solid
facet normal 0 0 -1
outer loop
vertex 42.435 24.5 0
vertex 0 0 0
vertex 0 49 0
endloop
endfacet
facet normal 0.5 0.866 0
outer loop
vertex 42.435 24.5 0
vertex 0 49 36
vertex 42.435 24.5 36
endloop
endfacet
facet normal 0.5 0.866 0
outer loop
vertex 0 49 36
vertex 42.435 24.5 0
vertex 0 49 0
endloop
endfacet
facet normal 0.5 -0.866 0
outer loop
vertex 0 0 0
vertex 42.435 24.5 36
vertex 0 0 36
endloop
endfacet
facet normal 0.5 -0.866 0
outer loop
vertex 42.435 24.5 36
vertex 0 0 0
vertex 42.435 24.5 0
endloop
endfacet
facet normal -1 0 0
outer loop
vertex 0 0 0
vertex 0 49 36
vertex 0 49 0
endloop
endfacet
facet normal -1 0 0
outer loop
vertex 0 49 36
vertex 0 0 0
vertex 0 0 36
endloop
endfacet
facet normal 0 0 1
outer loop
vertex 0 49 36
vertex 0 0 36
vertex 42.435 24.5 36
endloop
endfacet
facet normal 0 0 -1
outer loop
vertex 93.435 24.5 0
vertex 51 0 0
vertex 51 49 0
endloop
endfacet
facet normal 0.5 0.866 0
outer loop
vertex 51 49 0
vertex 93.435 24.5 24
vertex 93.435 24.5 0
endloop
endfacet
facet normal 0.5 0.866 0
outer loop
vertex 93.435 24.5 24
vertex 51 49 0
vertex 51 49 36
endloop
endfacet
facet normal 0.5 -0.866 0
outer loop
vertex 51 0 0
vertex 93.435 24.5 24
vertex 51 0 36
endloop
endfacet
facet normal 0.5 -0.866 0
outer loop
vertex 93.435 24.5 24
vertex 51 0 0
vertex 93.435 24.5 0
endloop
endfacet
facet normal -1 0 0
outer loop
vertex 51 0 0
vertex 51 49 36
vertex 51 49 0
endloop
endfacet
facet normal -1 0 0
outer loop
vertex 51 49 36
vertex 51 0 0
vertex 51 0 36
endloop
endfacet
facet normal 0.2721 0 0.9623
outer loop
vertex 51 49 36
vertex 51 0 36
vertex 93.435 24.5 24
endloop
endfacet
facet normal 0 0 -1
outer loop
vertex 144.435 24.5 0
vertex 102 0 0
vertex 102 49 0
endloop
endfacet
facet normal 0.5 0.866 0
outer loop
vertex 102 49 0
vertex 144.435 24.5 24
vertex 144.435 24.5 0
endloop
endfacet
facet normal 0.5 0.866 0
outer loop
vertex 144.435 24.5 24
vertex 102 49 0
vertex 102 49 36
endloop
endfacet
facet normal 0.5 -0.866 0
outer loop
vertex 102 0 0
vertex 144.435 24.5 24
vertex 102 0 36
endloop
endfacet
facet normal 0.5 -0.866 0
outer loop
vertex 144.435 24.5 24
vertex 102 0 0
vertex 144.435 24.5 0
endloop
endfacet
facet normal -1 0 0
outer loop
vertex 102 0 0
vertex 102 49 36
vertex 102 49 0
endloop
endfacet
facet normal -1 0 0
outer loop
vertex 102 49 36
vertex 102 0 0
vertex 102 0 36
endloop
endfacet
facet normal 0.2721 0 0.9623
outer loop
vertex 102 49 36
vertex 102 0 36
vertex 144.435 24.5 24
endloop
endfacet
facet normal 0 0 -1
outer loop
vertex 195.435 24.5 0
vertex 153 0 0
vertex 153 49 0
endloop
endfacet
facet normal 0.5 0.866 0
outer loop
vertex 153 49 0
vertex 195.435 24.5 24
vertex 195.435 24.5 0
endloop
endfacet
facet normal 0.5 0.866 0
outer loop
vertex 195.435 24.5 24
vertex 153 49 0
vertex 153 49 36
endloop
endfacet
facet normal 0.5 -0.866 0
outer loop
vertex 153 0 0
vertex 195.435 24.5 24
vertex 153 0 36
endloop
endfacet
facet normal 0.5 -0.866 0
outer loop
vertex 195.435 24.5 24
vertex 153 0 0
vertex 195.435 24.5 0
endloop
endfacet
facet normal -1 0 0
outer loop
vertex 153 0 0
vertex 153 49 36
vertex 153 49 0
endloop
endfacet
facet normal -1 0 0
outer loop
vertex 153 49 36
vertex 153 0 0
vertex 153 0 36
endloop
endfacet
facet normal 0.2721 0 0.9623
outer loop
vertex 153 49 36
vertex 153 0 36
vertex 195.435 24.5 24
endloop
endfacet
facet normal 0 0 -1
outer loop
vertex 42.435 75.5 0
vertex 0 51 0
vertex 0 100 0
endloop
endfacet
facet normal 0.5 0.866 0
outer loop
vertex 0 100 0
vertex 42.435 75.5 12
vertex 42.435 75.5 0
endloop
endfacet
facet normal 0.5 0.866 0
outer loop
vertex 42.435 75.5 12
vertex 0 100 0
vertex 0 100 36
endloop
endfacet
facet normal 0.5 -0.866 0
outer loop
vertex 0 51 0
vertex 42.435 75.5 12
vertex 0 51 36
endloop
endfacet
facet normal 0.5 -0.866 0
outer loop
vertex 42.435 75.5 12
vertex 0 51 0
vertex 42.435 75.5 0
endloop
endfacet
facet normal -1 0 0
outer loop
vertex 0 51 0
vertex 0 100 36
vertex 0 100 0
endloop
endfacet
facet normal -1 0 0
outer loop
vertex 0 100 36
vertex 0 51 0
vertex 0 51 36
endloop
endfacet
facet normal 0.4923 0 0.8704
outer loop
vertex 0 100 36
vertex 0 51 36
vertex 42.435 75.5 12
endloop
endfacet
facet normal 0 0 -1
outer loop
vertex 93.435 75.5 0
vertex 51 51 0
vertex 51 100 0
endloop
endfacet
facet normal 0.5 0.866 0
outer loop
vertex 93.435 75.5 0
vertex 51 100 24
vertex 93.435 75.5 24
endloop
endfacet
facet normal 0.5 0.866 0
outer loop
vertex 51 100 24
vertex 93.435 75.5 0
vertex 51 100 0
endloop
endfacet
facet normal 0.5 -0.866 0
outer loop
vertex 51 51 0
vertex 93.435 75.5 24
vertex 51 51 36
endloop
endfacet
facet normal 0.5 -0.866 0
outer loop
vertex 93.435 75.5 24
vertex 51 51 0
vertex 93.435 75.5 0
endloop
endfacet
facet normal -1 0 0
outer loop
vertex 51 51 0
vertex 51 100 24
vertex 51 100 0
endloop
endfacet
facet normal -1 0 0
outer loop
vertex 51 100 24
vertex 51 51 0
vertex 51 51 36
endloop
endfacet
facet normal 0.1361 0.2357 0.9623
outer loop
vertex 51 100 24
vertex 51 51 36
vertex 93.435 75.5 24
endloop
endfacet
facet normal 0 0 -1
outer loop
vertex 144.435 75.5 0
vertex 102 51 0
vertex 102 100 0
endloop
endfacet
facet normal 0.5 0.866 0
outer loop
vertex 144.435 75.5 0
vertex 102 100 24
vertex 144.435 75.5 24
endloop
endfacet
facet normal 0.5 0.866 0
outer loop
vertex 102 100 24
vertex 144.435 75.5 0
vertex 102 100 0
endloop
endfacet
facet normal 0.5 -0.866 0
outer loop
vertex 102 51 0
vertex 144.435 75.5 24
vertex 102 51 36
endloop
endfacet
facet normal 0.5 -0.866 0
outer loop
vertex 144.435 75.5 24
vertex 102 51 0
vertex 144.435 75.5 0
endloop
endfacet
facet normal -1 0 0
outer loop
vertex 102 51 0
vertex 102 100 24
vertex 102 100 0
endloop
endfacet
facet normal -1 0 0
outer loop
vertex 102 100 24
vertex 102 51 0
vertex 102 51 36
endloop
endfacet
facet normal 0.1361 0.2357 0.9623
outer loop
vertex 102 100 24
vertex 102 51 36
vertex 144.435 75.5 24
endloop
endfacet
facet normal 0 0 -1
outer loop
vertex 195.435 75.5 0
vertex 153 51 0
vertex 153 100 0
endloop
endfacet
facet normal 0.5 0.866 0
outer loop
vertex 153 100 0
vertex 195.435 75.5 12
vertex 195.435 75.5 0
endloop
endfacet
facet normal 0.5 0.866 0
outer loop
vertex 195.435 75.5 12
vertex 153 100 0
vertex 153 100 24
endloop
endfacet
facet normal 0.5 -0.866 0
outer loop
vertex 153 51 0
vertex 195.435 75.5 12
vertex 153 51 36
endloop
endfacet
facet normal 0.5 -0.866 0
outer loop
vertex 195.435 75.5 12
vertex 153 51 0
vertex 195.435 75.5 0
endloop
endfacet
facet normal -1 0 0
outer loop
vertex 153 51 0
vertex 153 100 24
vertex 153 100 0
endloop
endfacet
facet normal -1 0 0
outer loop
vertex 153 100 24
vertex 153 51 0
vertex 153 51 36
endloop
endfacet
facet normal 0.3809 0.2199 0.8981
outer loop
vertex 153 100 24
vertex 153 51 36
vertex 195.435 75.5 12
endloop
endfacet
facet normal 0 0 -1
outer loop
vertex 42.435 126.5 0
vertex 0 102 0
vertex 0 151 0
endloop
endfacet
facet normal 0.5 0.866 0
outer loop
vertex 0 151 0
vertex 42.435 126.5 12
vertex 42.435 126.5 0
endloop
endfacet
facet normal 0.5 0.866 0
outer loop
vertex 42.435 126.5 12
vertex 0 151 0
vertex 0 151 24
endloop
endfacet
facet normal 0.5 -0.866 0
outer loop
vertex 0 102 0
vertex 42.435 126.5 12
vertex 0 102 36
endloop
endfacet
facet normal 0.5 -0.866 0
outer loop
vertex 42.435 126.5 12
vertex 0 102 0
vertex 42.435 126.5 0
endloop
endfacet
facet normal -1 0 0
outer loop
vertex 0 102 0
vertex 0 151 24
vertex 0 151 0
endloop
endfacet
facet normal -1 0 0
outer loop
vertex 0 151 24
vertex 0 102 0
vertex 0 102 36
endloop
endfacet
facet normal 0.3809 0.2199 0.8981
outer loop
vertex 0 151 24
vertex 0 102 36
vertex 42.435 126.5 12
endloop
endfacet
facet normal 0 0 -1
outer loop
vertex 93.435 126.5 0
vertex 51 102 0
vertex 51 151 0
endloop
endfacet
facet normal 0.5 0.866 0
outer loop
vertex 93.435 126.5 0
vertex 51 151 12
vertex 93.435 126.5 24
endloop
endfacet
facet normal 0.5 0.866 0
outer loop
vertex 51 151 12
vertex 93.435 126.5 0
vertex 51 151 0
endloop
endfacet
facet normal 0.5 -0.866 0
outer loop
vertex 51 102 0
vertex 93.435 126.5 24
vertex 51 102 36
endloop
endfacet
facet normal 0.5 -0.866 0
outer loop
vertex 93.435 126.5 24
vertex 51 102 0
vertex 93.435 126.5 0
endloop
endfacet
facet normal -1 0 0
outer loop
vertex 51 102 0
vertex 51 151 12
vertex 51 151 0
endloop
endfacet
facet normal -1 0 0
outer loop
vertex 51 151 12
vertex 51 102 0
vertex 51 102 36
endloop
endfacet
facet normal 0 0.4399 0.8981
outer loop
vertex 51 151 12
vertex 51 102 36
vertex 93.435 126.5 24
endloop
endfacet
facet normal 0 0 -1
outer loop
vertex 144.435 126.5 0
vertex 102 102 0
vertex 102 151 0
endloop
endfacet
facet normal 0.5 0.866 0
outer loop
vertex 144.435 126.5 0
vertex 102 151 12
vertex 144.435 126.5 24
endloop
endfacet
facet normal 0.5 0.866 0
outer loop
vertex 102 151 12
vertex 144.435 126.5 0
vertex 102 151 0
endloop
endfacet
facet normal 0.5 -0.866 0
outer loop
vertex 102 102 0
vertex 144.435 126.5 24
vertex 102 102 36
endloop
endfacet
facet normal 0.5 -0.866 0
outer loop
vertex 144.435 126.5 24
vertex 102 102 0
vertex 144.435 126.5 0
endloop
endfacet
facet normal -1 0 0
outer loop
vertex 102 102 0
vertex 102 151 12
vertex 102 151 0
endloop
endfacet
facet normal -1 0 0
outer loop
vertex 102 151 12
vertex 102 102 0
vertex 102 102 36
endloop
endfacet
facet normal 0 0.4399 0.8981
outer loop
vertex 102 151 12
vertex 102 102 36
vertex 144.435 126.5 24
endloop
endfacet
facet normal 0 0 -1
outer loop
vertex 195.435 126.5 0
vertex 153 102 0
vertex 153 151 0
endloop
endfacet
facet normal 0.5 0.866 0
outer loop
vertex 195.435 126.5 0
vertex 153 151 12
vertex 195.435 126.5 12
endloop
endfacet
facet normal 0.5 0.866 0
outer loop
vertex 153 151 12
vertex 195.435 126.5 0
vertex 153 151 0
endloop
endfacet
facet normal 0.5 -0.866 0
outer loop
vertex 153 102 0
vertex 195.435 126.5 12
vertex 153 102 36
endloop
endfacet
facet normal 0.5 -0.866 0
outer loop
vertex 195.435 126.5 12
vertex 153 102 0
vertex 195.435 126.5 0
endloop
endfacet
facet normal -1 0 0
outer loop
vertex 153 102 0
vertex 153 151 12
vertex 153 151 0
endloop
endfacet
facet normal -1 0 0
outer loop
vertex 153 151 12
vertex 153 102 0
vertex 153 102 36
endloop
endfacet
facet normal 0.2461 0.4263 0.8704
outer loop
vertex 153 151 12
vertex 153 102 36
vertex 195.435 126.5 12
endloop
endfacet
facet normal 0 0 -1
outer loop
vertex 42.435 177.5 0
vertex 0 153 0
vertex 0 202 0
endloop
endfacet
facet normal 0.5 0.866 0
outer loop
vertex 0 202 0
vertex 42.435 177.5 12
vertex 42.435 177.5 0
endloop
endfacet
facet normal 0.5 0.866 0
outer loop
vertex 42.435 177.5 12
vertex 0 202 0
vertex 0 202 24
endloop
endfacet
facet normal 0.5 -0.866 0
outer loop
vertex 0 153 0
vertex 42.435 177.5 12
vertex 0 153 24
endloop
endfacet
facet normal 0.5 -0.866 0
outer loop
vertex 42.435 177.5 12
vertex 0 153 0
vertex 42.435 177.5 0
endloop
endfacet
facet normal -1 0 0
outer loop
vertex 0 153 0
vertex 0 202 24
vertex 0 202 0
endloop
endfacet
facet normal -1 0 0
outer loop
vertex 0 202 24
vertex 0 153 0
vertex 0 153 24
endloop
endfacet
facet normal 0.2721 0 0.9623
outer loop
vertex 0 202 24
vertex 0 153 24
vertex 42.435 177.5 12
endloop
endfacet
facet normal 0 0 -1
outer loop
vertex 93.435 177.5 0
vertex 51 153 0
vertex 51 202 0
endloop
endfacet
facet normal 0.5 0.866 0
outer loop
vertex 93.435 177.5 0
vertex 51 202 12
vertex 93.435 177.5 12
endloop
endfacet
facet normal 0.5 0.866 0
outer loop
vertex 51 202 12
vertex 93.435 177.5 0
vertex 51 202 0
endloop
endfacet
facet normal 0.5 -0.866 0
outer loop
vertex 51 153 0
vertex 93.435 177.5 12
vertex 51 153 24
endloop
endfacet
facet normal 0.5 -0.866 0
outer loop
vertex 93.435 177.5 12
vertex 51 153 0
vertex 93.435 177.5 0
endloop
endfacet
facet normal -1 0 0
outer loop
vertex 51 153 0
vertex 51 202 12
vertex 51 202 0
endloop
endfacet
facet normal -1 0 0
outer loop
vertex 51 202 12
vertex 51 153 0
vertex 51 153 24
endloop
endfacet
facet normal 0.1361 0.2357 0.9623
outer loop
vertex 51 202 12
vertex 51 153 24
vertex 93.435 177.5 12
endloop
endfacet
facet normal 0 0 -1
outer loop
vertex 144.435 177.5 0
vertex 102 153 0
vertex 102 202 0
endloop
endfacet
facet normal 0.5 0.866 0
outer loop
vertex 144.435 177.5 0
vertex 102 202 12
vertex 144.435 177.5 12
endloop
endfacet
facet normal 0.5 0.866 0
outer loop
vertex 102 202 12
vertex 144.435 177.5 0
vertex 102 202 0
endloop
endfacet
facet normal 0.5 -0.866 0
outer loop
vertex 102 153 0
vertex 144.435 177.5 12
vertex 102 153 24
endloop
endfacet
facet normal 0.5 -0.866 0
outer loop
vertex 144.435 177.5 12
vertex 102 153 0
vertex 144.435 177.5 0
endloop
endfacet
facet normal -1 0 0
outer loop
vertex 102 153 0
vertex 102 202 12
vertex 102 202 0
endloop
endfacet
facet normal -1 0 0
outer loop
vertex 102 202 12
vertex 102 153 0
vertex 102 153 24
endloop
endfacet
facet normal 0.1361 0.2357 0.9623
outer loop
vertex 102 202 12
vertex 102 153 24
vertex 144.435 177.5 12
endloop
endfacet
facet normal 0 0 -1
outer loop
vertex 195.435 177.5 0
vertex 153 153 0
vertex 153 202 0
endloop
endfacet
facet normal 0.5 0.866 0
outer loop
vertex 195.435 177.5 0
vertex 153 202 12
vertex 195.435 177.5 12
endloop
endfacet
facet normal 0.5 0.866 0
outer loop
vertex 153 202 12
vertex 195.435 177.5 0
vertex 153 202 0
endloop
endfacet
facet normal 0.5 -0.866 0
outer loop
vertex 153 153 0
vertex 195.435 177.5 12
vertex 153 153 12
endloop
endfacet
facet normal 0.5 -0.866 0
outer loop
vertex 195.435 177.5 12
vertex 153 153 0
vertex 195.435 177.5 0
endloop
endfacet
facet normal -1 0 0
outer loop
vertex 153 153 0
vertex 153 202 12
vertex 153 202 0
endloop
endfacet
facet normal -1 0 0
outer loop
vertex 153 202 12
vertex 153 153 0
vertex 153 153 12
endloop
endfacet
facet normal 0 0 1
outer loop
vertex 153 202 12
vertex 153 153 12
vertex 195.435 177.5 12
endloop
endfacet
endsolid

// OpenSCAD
module piece(h, x = 49, heights = [12, 24, 36]) {
    base = [[0, 0, 0], [0, x, 0], [x*sin(60), x/2, 0]];
    polyhedron(
        points=[
            for (p = base) p,
            for (i = [0 : len(base)-1]) base[i] + [0, 0, heights[h[i]-1]]
        ],
        faces=[[0, 1, 2], [1, 4, 5, 2], [2, 5, 3, 0], [0, 3, 4, 1], [3, 5, 4]]
    );
}

pieces=[
    [3, 3, 3],
    [3, 3, 2],
    [3, 3, 2],
    [3, 3, 2],
    [3, 3, 1],
    [3, 2, 2],
    [3, 2, 2],
    [3, 2, 1],
    [3, 2, 1],
    [3, 1, 2],
    [3, 1, 2],
    [3, 1, 1],
    [2, 2, 1],
    [2, 1, 1],
    [2, 1, 1],
    [1, 1, 1]
];


for (i = [0 : len(pieces) - 1]) {
    translate([(i%4)*51, floor(i / 4)*51 , 0])
    piece(pieces[i]);
}
